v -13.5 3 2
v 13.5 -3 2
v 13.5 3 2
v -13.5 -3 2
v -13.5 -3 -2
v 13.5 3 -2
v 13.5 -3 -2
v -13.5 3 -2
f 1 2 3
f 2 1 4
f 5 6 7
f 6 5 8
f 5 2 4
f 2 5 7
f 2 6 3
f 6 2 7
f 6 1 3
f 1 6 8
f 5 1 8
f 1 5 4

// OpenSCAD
//ESP Spacer

$fn=60;

cube(size = [27,6,4], center = true);
